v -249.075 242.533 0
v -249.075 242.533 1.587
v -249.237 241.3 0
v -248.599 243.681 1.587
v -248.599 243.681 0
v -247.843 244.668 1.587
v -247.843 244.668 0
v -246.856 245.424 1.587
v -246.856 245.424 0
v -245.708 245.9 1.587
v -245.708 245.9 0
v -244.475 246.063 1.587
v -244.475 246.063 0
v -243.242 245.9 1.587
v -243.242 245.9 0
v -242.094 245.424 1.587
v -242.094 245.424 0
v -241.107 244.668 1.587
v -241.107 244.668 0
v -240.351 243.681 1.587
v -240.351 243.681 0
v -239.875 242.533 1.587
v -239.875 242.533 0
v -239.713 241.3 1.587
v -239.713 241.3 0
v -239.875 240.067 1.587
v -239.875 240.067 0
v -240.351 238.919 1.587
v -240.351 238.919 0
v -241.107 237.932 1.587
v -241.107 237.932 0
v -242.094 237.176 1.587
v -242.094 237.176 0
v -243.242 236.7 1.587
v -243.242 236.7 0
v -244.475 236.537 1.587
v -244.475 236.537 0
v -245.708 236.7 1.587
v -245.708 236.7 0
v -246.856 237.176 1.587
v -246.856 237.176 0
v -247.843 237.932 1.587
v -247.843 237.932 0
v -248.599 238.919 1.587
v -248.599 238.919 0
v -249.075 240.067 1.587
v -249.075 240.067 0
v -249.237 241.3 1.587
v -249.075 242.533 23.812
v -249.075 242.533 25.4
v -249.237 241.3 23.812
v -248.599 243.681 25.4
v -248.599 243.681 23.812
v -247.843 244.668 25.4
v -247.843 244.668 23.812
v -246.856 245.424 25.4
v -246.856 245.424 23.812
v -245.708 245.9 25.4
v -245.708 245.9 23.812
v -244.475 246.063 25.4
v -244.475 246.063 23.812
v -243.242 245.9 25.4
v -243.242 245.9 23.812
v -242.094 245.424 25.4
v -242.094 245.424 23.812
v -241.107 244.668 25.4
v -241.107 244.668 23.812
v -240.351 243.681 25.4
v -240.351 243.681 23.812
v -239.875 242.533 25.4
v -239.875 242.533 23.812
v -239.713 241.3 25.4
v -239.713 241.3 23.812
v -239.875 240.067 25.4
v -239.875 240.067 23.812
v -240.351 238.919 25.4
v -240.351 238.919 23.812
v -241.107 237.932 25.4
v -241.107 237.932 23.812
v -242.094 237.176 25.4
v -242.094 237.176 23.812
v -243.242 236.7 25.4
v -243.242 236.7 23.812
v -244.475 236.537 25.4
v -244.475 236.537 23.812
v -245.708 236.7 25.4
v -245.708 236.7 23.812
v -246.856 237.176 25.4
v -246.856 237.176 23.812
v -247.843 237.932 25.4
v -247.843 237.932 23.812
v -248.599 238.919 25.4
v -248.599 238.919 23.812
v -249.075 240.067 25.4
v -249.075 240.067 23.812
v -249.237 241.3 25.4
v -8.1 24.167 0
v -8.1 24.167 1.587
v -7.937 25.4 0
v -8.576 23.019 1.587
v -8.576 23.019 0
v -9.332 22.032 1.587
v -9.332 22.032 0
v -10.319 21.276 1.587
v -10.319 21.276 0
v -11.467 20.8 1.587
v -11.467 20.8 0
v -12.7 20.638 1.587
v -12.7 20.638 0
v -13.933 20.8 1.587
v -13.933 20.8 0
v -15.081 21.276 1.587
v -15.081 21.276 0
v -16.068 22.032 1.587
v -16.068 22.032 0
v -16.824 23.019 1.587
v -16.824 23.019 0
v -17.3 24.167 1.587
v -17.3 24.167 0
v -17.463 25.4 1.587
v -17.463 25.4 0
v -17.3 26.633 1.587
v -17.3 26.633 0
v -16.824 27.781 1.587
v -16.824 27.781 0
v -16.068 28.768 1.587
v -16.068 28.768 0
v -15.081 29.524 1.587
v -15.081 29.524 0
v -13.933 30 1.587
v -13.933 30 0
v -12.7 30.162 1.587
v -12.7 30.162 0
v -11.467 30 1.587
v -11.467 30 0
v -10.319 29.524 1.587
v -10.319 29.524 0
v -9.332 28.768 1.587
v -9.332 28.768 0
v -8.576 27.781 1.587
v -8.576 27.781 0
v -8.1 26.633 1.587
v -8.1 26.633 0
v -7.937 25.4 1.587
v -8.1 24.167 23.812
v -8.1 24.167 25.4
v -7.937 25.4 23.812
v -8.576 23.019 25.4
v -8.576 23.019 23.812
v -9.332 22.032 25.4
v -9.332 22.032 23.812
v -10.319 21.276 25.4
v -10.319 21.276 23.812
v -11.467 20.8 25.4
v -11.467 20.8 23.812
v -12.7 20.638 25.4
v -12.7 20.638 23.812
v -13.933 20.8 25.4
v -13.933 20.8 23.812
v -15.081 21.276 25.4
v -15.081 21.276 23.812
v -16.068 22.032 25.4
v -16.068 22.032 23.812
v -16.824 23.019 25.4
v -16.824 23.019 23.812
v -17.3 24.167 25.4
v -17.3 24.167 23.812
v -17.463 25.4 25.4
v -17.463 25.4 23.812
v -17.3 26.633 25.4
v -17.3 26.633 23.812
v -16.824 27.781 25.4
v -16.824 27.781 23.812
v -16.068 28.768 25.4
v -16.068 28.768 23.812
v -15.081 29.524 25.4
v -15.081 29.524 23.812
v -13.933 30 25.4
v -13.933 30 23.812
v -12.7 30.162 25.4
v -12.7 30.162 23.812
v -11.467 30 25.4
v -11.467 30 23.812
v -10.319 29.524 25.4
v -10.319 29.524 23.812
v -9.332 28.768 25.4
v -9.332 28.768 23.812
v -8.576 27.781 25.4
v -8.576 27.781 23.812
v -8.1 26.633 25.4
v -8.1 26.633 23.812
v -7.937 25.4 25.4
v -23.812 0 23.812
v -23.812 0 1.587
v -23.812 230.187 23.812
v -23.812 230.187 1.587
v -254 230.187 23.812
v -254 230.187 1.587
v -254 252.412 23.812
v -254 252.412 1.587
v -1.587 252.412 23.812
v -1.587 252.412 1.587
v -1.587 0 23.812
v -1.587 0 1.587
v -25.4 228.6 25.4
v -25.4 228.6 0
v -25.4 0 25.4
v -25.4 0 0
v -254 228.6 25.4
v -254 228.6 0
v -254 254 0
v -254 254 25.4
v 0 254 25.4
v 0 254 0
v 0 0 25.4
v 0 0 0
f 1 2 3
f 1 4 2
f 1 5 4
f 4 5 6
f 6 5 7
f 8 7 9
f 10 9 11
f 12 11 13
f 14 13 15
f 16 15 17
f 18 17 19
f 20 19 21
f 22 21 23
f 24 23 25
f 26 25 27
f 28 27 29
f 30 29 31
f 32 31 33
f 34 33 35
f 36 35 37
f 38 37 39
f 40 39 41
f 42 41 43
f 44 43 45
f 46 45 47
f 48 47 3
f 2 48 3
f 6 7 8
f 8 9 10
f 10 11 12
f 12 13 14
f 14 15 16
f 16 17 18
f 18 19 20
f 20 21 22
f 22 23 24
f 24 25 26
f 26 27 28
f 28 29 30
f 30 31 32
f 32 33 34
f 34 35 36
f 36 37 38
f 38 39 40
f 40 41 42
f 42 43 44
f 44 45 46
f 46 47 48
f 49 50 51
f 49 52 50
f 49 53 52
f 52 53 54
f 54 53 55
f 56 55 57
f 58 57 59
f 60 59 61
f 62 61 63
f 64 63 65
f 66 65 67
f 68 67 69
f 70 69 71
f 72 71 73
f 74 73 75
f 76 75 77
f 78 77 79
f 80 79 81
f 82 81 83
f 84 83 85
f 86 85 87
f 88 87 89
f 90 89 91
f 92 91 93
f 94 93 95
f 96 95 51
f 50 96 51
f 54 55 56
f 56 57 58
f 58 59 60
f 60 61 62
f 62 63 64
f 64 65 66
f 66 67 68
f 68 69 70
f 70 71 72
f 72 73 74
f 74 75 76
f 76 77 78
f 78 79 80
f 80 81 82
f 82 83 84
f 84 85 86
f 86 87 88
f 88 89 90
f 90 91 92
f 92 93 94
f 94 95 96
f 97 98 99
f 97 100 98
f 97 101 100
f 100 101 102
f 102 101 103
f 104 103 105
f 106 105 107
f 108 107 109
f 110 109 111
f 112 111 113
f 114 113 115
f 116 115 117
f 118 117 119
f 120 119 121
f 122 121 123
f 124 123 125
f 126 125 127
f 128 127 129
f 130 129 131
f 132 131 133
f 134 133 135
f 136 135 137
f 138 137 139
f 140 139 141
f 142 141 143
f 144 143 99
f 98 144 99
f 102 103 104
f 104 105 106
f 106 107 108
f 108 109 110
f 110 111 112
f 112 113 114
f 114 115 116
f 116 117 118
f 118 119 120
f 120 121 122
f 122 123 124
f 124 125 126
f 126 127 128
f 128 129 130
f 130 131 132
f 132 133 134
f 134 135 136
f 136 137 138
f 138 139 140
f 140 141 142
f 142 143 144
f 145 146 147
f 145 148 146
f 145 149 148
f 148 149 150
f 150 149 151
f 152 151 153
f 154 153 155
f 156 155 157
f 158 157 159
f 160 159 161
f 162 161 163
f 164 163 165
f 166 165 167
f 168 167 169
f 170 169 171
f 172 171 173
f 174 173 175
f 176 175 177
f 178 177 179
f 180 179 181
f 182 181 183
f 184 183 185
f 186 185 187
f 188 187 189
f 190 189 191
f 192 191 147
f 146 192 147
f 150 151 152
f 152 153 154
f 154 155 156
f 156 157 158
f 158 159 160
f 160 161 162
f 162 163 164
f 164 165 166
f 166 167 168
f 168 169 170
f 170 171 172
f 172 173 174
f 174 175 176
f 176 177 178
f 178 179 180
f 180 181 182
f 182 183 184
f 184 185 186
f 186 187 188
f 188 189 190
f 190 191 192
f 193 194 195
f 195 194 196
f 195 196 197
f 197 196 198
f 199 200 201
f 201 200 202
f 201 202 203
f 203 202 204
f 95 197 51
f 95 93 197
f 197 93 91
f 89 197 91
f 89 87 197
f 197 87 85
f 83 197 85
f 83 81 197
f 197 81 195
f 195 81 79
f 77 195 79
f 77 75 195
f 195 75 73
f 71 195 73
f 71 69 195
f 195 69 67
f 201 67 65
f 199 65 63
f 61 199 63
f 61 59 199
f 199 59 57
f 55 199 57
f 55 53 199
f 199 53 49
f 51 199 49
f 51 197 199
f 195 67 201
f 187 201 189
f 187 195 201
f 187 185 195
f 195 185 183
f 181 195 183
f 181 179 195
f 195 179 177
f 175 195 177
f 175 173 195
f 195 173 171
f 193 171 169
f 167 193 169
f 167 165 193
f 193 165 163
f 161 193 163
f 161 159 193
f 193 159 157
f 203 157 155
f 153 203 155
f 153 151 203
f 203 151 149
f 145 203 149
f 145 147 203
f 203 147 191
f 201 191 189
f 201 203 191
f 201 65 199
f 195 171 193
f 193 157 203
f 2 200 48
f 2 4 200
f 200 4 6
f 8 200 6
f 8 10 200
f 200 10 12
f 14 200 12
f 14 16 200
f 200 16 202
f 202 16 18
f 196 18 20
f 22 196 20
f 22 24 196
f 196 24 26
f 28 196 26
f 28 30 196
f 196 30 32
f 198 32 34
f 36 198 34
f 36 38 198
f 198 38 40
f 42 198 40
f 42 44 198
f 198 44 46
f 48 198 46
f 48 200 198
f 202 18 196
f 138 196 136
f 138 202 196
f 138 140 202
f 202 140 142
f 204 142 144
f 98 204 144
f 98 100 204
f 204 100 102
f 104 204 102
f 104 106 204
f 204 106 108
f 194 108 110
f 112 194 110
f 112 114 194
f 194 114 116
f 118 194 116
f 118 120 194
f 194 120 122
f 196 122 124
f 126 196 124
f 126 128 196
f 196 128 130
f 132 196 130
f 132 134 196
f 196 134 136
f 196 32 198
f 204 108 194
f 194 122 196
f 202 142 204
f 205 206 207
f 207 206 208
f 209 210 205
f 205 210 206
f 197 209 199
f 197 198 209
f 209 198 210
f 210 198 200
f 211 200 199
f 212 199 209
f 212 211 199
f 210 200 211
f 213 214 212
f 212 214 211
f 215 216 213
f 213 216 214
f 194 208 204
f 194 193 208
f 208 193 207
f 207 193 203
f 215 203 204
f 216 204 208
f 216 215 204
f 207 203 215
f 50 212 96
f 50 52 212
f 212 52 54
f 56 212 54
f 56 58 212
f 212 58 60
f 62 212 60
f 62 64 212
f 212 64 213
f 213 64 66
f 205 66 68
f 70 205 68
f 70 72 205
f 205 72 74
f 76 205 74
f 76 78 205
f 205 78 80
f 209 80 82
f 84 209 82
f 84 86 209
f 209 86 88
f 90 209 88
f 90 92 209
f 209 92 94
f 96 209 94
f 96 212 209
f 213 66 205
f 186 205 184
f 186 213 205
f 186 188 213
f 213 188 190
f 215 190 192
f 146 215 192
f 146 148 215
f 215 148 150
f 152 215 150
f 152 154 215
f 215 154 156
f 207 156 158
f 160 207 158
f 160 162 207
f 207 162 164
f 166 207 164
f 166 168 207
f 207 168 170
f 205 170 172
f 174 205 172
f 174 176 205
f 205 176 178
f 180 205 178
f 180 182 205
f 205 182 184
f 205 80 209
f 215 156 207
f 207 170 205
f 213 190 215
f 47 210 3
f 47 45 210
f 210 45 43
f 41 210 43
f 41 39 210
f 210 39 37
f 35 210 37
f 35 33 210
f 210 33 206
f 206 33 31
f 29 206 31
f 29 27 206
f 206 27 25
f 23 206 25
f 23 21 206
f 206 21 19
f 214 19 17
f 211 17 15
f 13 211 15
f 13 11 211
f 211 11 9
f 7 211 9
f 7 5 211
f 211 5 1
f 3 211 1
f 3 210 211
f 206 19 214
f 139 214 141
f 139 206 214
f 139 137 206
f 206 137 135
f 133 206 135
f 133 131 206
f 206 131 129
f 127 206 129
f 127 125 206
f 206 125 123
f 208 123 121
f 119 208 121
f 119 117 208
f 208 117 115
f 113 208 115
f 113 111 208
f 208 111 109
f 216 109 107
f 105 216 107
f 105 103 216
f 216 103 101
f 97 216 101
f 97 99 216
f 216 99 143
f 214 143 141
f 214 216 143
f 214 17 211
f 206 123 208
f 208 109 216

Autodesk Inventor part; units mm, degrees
ref_plane "YZ Plane" through (0, 0, 0) normal (1, 0, 0) x (0, 1, 0)
ref_plane "XZ Plane" through (0, 0, 0) normal (0, 1, 0) x (-1, 0, 0)
ref_plane "XY Plane" through (0, 0, 0) normal (0, 0, 1) x (1, 0, 0)
sketch "Sketch1" plane through (0, 0, 0) normal (0, 0, 1) x (1, 0, 0)
  line L0 (0, 0) -> (-25.4, 0)
  line L1 (-254, 228.6) -> (-254, 254)
  line L2 (-254, 254) -> (0, 254)
  line L3 (0, 254) -> (0, 0)
  line L4 (-25.4, 0) -> (-25.4, 228.6)
  line L5 (-25.4, 228.6) -> (-254, 228.6)
  dimension "d0" = 25.4
  dimension "d1" = 254
  dimension "d2" = 254
extrude "Extrusion1" add sketch "Sketch1" along normal blind 25.4
shell "Shell1" thickness 1.5875 removed faces 2 at (-8.4667, 0, 8.4667) at (-254, 237.0667, 8.4667)
sketch "Sketch2" plane through (0, 0, 25.4) normal (0, 0, 1) x (1, 0, 0)
  line L0 (0, 0) -> (-25.4, 0) projected
  line L1 (0, 254) -> (0, 0) projected
  circle A0 centre (-12.7, 25.4) radius 4.7625
  dimension "d6" = 9.525
  dimension "d7" = 12.7
  dimension "d8" = 25.4
extrude "Extrusion2" cut sketch "Sketch2" against normal through all
sketch "Sketch3" plane through (0, 0, 0) normal (0, 0, -1) x (-1, 0, 0)
  line L0 (25.4, 228.6) -> (254, 228.6) projected
  line L1 (254, 228.6) -> (254, 254) projected
  circle A0 centre (244.475, 241.3) radius 4.7625
  dimension "d11" = 9.525
  dimension "d12" = 12.7
  dimension "d13" = 9.525
extrude "Extrusion3" cut sketch "Sketch3" against normal through all
properties part number "LoweringArm" material "Aluminum-6061"
